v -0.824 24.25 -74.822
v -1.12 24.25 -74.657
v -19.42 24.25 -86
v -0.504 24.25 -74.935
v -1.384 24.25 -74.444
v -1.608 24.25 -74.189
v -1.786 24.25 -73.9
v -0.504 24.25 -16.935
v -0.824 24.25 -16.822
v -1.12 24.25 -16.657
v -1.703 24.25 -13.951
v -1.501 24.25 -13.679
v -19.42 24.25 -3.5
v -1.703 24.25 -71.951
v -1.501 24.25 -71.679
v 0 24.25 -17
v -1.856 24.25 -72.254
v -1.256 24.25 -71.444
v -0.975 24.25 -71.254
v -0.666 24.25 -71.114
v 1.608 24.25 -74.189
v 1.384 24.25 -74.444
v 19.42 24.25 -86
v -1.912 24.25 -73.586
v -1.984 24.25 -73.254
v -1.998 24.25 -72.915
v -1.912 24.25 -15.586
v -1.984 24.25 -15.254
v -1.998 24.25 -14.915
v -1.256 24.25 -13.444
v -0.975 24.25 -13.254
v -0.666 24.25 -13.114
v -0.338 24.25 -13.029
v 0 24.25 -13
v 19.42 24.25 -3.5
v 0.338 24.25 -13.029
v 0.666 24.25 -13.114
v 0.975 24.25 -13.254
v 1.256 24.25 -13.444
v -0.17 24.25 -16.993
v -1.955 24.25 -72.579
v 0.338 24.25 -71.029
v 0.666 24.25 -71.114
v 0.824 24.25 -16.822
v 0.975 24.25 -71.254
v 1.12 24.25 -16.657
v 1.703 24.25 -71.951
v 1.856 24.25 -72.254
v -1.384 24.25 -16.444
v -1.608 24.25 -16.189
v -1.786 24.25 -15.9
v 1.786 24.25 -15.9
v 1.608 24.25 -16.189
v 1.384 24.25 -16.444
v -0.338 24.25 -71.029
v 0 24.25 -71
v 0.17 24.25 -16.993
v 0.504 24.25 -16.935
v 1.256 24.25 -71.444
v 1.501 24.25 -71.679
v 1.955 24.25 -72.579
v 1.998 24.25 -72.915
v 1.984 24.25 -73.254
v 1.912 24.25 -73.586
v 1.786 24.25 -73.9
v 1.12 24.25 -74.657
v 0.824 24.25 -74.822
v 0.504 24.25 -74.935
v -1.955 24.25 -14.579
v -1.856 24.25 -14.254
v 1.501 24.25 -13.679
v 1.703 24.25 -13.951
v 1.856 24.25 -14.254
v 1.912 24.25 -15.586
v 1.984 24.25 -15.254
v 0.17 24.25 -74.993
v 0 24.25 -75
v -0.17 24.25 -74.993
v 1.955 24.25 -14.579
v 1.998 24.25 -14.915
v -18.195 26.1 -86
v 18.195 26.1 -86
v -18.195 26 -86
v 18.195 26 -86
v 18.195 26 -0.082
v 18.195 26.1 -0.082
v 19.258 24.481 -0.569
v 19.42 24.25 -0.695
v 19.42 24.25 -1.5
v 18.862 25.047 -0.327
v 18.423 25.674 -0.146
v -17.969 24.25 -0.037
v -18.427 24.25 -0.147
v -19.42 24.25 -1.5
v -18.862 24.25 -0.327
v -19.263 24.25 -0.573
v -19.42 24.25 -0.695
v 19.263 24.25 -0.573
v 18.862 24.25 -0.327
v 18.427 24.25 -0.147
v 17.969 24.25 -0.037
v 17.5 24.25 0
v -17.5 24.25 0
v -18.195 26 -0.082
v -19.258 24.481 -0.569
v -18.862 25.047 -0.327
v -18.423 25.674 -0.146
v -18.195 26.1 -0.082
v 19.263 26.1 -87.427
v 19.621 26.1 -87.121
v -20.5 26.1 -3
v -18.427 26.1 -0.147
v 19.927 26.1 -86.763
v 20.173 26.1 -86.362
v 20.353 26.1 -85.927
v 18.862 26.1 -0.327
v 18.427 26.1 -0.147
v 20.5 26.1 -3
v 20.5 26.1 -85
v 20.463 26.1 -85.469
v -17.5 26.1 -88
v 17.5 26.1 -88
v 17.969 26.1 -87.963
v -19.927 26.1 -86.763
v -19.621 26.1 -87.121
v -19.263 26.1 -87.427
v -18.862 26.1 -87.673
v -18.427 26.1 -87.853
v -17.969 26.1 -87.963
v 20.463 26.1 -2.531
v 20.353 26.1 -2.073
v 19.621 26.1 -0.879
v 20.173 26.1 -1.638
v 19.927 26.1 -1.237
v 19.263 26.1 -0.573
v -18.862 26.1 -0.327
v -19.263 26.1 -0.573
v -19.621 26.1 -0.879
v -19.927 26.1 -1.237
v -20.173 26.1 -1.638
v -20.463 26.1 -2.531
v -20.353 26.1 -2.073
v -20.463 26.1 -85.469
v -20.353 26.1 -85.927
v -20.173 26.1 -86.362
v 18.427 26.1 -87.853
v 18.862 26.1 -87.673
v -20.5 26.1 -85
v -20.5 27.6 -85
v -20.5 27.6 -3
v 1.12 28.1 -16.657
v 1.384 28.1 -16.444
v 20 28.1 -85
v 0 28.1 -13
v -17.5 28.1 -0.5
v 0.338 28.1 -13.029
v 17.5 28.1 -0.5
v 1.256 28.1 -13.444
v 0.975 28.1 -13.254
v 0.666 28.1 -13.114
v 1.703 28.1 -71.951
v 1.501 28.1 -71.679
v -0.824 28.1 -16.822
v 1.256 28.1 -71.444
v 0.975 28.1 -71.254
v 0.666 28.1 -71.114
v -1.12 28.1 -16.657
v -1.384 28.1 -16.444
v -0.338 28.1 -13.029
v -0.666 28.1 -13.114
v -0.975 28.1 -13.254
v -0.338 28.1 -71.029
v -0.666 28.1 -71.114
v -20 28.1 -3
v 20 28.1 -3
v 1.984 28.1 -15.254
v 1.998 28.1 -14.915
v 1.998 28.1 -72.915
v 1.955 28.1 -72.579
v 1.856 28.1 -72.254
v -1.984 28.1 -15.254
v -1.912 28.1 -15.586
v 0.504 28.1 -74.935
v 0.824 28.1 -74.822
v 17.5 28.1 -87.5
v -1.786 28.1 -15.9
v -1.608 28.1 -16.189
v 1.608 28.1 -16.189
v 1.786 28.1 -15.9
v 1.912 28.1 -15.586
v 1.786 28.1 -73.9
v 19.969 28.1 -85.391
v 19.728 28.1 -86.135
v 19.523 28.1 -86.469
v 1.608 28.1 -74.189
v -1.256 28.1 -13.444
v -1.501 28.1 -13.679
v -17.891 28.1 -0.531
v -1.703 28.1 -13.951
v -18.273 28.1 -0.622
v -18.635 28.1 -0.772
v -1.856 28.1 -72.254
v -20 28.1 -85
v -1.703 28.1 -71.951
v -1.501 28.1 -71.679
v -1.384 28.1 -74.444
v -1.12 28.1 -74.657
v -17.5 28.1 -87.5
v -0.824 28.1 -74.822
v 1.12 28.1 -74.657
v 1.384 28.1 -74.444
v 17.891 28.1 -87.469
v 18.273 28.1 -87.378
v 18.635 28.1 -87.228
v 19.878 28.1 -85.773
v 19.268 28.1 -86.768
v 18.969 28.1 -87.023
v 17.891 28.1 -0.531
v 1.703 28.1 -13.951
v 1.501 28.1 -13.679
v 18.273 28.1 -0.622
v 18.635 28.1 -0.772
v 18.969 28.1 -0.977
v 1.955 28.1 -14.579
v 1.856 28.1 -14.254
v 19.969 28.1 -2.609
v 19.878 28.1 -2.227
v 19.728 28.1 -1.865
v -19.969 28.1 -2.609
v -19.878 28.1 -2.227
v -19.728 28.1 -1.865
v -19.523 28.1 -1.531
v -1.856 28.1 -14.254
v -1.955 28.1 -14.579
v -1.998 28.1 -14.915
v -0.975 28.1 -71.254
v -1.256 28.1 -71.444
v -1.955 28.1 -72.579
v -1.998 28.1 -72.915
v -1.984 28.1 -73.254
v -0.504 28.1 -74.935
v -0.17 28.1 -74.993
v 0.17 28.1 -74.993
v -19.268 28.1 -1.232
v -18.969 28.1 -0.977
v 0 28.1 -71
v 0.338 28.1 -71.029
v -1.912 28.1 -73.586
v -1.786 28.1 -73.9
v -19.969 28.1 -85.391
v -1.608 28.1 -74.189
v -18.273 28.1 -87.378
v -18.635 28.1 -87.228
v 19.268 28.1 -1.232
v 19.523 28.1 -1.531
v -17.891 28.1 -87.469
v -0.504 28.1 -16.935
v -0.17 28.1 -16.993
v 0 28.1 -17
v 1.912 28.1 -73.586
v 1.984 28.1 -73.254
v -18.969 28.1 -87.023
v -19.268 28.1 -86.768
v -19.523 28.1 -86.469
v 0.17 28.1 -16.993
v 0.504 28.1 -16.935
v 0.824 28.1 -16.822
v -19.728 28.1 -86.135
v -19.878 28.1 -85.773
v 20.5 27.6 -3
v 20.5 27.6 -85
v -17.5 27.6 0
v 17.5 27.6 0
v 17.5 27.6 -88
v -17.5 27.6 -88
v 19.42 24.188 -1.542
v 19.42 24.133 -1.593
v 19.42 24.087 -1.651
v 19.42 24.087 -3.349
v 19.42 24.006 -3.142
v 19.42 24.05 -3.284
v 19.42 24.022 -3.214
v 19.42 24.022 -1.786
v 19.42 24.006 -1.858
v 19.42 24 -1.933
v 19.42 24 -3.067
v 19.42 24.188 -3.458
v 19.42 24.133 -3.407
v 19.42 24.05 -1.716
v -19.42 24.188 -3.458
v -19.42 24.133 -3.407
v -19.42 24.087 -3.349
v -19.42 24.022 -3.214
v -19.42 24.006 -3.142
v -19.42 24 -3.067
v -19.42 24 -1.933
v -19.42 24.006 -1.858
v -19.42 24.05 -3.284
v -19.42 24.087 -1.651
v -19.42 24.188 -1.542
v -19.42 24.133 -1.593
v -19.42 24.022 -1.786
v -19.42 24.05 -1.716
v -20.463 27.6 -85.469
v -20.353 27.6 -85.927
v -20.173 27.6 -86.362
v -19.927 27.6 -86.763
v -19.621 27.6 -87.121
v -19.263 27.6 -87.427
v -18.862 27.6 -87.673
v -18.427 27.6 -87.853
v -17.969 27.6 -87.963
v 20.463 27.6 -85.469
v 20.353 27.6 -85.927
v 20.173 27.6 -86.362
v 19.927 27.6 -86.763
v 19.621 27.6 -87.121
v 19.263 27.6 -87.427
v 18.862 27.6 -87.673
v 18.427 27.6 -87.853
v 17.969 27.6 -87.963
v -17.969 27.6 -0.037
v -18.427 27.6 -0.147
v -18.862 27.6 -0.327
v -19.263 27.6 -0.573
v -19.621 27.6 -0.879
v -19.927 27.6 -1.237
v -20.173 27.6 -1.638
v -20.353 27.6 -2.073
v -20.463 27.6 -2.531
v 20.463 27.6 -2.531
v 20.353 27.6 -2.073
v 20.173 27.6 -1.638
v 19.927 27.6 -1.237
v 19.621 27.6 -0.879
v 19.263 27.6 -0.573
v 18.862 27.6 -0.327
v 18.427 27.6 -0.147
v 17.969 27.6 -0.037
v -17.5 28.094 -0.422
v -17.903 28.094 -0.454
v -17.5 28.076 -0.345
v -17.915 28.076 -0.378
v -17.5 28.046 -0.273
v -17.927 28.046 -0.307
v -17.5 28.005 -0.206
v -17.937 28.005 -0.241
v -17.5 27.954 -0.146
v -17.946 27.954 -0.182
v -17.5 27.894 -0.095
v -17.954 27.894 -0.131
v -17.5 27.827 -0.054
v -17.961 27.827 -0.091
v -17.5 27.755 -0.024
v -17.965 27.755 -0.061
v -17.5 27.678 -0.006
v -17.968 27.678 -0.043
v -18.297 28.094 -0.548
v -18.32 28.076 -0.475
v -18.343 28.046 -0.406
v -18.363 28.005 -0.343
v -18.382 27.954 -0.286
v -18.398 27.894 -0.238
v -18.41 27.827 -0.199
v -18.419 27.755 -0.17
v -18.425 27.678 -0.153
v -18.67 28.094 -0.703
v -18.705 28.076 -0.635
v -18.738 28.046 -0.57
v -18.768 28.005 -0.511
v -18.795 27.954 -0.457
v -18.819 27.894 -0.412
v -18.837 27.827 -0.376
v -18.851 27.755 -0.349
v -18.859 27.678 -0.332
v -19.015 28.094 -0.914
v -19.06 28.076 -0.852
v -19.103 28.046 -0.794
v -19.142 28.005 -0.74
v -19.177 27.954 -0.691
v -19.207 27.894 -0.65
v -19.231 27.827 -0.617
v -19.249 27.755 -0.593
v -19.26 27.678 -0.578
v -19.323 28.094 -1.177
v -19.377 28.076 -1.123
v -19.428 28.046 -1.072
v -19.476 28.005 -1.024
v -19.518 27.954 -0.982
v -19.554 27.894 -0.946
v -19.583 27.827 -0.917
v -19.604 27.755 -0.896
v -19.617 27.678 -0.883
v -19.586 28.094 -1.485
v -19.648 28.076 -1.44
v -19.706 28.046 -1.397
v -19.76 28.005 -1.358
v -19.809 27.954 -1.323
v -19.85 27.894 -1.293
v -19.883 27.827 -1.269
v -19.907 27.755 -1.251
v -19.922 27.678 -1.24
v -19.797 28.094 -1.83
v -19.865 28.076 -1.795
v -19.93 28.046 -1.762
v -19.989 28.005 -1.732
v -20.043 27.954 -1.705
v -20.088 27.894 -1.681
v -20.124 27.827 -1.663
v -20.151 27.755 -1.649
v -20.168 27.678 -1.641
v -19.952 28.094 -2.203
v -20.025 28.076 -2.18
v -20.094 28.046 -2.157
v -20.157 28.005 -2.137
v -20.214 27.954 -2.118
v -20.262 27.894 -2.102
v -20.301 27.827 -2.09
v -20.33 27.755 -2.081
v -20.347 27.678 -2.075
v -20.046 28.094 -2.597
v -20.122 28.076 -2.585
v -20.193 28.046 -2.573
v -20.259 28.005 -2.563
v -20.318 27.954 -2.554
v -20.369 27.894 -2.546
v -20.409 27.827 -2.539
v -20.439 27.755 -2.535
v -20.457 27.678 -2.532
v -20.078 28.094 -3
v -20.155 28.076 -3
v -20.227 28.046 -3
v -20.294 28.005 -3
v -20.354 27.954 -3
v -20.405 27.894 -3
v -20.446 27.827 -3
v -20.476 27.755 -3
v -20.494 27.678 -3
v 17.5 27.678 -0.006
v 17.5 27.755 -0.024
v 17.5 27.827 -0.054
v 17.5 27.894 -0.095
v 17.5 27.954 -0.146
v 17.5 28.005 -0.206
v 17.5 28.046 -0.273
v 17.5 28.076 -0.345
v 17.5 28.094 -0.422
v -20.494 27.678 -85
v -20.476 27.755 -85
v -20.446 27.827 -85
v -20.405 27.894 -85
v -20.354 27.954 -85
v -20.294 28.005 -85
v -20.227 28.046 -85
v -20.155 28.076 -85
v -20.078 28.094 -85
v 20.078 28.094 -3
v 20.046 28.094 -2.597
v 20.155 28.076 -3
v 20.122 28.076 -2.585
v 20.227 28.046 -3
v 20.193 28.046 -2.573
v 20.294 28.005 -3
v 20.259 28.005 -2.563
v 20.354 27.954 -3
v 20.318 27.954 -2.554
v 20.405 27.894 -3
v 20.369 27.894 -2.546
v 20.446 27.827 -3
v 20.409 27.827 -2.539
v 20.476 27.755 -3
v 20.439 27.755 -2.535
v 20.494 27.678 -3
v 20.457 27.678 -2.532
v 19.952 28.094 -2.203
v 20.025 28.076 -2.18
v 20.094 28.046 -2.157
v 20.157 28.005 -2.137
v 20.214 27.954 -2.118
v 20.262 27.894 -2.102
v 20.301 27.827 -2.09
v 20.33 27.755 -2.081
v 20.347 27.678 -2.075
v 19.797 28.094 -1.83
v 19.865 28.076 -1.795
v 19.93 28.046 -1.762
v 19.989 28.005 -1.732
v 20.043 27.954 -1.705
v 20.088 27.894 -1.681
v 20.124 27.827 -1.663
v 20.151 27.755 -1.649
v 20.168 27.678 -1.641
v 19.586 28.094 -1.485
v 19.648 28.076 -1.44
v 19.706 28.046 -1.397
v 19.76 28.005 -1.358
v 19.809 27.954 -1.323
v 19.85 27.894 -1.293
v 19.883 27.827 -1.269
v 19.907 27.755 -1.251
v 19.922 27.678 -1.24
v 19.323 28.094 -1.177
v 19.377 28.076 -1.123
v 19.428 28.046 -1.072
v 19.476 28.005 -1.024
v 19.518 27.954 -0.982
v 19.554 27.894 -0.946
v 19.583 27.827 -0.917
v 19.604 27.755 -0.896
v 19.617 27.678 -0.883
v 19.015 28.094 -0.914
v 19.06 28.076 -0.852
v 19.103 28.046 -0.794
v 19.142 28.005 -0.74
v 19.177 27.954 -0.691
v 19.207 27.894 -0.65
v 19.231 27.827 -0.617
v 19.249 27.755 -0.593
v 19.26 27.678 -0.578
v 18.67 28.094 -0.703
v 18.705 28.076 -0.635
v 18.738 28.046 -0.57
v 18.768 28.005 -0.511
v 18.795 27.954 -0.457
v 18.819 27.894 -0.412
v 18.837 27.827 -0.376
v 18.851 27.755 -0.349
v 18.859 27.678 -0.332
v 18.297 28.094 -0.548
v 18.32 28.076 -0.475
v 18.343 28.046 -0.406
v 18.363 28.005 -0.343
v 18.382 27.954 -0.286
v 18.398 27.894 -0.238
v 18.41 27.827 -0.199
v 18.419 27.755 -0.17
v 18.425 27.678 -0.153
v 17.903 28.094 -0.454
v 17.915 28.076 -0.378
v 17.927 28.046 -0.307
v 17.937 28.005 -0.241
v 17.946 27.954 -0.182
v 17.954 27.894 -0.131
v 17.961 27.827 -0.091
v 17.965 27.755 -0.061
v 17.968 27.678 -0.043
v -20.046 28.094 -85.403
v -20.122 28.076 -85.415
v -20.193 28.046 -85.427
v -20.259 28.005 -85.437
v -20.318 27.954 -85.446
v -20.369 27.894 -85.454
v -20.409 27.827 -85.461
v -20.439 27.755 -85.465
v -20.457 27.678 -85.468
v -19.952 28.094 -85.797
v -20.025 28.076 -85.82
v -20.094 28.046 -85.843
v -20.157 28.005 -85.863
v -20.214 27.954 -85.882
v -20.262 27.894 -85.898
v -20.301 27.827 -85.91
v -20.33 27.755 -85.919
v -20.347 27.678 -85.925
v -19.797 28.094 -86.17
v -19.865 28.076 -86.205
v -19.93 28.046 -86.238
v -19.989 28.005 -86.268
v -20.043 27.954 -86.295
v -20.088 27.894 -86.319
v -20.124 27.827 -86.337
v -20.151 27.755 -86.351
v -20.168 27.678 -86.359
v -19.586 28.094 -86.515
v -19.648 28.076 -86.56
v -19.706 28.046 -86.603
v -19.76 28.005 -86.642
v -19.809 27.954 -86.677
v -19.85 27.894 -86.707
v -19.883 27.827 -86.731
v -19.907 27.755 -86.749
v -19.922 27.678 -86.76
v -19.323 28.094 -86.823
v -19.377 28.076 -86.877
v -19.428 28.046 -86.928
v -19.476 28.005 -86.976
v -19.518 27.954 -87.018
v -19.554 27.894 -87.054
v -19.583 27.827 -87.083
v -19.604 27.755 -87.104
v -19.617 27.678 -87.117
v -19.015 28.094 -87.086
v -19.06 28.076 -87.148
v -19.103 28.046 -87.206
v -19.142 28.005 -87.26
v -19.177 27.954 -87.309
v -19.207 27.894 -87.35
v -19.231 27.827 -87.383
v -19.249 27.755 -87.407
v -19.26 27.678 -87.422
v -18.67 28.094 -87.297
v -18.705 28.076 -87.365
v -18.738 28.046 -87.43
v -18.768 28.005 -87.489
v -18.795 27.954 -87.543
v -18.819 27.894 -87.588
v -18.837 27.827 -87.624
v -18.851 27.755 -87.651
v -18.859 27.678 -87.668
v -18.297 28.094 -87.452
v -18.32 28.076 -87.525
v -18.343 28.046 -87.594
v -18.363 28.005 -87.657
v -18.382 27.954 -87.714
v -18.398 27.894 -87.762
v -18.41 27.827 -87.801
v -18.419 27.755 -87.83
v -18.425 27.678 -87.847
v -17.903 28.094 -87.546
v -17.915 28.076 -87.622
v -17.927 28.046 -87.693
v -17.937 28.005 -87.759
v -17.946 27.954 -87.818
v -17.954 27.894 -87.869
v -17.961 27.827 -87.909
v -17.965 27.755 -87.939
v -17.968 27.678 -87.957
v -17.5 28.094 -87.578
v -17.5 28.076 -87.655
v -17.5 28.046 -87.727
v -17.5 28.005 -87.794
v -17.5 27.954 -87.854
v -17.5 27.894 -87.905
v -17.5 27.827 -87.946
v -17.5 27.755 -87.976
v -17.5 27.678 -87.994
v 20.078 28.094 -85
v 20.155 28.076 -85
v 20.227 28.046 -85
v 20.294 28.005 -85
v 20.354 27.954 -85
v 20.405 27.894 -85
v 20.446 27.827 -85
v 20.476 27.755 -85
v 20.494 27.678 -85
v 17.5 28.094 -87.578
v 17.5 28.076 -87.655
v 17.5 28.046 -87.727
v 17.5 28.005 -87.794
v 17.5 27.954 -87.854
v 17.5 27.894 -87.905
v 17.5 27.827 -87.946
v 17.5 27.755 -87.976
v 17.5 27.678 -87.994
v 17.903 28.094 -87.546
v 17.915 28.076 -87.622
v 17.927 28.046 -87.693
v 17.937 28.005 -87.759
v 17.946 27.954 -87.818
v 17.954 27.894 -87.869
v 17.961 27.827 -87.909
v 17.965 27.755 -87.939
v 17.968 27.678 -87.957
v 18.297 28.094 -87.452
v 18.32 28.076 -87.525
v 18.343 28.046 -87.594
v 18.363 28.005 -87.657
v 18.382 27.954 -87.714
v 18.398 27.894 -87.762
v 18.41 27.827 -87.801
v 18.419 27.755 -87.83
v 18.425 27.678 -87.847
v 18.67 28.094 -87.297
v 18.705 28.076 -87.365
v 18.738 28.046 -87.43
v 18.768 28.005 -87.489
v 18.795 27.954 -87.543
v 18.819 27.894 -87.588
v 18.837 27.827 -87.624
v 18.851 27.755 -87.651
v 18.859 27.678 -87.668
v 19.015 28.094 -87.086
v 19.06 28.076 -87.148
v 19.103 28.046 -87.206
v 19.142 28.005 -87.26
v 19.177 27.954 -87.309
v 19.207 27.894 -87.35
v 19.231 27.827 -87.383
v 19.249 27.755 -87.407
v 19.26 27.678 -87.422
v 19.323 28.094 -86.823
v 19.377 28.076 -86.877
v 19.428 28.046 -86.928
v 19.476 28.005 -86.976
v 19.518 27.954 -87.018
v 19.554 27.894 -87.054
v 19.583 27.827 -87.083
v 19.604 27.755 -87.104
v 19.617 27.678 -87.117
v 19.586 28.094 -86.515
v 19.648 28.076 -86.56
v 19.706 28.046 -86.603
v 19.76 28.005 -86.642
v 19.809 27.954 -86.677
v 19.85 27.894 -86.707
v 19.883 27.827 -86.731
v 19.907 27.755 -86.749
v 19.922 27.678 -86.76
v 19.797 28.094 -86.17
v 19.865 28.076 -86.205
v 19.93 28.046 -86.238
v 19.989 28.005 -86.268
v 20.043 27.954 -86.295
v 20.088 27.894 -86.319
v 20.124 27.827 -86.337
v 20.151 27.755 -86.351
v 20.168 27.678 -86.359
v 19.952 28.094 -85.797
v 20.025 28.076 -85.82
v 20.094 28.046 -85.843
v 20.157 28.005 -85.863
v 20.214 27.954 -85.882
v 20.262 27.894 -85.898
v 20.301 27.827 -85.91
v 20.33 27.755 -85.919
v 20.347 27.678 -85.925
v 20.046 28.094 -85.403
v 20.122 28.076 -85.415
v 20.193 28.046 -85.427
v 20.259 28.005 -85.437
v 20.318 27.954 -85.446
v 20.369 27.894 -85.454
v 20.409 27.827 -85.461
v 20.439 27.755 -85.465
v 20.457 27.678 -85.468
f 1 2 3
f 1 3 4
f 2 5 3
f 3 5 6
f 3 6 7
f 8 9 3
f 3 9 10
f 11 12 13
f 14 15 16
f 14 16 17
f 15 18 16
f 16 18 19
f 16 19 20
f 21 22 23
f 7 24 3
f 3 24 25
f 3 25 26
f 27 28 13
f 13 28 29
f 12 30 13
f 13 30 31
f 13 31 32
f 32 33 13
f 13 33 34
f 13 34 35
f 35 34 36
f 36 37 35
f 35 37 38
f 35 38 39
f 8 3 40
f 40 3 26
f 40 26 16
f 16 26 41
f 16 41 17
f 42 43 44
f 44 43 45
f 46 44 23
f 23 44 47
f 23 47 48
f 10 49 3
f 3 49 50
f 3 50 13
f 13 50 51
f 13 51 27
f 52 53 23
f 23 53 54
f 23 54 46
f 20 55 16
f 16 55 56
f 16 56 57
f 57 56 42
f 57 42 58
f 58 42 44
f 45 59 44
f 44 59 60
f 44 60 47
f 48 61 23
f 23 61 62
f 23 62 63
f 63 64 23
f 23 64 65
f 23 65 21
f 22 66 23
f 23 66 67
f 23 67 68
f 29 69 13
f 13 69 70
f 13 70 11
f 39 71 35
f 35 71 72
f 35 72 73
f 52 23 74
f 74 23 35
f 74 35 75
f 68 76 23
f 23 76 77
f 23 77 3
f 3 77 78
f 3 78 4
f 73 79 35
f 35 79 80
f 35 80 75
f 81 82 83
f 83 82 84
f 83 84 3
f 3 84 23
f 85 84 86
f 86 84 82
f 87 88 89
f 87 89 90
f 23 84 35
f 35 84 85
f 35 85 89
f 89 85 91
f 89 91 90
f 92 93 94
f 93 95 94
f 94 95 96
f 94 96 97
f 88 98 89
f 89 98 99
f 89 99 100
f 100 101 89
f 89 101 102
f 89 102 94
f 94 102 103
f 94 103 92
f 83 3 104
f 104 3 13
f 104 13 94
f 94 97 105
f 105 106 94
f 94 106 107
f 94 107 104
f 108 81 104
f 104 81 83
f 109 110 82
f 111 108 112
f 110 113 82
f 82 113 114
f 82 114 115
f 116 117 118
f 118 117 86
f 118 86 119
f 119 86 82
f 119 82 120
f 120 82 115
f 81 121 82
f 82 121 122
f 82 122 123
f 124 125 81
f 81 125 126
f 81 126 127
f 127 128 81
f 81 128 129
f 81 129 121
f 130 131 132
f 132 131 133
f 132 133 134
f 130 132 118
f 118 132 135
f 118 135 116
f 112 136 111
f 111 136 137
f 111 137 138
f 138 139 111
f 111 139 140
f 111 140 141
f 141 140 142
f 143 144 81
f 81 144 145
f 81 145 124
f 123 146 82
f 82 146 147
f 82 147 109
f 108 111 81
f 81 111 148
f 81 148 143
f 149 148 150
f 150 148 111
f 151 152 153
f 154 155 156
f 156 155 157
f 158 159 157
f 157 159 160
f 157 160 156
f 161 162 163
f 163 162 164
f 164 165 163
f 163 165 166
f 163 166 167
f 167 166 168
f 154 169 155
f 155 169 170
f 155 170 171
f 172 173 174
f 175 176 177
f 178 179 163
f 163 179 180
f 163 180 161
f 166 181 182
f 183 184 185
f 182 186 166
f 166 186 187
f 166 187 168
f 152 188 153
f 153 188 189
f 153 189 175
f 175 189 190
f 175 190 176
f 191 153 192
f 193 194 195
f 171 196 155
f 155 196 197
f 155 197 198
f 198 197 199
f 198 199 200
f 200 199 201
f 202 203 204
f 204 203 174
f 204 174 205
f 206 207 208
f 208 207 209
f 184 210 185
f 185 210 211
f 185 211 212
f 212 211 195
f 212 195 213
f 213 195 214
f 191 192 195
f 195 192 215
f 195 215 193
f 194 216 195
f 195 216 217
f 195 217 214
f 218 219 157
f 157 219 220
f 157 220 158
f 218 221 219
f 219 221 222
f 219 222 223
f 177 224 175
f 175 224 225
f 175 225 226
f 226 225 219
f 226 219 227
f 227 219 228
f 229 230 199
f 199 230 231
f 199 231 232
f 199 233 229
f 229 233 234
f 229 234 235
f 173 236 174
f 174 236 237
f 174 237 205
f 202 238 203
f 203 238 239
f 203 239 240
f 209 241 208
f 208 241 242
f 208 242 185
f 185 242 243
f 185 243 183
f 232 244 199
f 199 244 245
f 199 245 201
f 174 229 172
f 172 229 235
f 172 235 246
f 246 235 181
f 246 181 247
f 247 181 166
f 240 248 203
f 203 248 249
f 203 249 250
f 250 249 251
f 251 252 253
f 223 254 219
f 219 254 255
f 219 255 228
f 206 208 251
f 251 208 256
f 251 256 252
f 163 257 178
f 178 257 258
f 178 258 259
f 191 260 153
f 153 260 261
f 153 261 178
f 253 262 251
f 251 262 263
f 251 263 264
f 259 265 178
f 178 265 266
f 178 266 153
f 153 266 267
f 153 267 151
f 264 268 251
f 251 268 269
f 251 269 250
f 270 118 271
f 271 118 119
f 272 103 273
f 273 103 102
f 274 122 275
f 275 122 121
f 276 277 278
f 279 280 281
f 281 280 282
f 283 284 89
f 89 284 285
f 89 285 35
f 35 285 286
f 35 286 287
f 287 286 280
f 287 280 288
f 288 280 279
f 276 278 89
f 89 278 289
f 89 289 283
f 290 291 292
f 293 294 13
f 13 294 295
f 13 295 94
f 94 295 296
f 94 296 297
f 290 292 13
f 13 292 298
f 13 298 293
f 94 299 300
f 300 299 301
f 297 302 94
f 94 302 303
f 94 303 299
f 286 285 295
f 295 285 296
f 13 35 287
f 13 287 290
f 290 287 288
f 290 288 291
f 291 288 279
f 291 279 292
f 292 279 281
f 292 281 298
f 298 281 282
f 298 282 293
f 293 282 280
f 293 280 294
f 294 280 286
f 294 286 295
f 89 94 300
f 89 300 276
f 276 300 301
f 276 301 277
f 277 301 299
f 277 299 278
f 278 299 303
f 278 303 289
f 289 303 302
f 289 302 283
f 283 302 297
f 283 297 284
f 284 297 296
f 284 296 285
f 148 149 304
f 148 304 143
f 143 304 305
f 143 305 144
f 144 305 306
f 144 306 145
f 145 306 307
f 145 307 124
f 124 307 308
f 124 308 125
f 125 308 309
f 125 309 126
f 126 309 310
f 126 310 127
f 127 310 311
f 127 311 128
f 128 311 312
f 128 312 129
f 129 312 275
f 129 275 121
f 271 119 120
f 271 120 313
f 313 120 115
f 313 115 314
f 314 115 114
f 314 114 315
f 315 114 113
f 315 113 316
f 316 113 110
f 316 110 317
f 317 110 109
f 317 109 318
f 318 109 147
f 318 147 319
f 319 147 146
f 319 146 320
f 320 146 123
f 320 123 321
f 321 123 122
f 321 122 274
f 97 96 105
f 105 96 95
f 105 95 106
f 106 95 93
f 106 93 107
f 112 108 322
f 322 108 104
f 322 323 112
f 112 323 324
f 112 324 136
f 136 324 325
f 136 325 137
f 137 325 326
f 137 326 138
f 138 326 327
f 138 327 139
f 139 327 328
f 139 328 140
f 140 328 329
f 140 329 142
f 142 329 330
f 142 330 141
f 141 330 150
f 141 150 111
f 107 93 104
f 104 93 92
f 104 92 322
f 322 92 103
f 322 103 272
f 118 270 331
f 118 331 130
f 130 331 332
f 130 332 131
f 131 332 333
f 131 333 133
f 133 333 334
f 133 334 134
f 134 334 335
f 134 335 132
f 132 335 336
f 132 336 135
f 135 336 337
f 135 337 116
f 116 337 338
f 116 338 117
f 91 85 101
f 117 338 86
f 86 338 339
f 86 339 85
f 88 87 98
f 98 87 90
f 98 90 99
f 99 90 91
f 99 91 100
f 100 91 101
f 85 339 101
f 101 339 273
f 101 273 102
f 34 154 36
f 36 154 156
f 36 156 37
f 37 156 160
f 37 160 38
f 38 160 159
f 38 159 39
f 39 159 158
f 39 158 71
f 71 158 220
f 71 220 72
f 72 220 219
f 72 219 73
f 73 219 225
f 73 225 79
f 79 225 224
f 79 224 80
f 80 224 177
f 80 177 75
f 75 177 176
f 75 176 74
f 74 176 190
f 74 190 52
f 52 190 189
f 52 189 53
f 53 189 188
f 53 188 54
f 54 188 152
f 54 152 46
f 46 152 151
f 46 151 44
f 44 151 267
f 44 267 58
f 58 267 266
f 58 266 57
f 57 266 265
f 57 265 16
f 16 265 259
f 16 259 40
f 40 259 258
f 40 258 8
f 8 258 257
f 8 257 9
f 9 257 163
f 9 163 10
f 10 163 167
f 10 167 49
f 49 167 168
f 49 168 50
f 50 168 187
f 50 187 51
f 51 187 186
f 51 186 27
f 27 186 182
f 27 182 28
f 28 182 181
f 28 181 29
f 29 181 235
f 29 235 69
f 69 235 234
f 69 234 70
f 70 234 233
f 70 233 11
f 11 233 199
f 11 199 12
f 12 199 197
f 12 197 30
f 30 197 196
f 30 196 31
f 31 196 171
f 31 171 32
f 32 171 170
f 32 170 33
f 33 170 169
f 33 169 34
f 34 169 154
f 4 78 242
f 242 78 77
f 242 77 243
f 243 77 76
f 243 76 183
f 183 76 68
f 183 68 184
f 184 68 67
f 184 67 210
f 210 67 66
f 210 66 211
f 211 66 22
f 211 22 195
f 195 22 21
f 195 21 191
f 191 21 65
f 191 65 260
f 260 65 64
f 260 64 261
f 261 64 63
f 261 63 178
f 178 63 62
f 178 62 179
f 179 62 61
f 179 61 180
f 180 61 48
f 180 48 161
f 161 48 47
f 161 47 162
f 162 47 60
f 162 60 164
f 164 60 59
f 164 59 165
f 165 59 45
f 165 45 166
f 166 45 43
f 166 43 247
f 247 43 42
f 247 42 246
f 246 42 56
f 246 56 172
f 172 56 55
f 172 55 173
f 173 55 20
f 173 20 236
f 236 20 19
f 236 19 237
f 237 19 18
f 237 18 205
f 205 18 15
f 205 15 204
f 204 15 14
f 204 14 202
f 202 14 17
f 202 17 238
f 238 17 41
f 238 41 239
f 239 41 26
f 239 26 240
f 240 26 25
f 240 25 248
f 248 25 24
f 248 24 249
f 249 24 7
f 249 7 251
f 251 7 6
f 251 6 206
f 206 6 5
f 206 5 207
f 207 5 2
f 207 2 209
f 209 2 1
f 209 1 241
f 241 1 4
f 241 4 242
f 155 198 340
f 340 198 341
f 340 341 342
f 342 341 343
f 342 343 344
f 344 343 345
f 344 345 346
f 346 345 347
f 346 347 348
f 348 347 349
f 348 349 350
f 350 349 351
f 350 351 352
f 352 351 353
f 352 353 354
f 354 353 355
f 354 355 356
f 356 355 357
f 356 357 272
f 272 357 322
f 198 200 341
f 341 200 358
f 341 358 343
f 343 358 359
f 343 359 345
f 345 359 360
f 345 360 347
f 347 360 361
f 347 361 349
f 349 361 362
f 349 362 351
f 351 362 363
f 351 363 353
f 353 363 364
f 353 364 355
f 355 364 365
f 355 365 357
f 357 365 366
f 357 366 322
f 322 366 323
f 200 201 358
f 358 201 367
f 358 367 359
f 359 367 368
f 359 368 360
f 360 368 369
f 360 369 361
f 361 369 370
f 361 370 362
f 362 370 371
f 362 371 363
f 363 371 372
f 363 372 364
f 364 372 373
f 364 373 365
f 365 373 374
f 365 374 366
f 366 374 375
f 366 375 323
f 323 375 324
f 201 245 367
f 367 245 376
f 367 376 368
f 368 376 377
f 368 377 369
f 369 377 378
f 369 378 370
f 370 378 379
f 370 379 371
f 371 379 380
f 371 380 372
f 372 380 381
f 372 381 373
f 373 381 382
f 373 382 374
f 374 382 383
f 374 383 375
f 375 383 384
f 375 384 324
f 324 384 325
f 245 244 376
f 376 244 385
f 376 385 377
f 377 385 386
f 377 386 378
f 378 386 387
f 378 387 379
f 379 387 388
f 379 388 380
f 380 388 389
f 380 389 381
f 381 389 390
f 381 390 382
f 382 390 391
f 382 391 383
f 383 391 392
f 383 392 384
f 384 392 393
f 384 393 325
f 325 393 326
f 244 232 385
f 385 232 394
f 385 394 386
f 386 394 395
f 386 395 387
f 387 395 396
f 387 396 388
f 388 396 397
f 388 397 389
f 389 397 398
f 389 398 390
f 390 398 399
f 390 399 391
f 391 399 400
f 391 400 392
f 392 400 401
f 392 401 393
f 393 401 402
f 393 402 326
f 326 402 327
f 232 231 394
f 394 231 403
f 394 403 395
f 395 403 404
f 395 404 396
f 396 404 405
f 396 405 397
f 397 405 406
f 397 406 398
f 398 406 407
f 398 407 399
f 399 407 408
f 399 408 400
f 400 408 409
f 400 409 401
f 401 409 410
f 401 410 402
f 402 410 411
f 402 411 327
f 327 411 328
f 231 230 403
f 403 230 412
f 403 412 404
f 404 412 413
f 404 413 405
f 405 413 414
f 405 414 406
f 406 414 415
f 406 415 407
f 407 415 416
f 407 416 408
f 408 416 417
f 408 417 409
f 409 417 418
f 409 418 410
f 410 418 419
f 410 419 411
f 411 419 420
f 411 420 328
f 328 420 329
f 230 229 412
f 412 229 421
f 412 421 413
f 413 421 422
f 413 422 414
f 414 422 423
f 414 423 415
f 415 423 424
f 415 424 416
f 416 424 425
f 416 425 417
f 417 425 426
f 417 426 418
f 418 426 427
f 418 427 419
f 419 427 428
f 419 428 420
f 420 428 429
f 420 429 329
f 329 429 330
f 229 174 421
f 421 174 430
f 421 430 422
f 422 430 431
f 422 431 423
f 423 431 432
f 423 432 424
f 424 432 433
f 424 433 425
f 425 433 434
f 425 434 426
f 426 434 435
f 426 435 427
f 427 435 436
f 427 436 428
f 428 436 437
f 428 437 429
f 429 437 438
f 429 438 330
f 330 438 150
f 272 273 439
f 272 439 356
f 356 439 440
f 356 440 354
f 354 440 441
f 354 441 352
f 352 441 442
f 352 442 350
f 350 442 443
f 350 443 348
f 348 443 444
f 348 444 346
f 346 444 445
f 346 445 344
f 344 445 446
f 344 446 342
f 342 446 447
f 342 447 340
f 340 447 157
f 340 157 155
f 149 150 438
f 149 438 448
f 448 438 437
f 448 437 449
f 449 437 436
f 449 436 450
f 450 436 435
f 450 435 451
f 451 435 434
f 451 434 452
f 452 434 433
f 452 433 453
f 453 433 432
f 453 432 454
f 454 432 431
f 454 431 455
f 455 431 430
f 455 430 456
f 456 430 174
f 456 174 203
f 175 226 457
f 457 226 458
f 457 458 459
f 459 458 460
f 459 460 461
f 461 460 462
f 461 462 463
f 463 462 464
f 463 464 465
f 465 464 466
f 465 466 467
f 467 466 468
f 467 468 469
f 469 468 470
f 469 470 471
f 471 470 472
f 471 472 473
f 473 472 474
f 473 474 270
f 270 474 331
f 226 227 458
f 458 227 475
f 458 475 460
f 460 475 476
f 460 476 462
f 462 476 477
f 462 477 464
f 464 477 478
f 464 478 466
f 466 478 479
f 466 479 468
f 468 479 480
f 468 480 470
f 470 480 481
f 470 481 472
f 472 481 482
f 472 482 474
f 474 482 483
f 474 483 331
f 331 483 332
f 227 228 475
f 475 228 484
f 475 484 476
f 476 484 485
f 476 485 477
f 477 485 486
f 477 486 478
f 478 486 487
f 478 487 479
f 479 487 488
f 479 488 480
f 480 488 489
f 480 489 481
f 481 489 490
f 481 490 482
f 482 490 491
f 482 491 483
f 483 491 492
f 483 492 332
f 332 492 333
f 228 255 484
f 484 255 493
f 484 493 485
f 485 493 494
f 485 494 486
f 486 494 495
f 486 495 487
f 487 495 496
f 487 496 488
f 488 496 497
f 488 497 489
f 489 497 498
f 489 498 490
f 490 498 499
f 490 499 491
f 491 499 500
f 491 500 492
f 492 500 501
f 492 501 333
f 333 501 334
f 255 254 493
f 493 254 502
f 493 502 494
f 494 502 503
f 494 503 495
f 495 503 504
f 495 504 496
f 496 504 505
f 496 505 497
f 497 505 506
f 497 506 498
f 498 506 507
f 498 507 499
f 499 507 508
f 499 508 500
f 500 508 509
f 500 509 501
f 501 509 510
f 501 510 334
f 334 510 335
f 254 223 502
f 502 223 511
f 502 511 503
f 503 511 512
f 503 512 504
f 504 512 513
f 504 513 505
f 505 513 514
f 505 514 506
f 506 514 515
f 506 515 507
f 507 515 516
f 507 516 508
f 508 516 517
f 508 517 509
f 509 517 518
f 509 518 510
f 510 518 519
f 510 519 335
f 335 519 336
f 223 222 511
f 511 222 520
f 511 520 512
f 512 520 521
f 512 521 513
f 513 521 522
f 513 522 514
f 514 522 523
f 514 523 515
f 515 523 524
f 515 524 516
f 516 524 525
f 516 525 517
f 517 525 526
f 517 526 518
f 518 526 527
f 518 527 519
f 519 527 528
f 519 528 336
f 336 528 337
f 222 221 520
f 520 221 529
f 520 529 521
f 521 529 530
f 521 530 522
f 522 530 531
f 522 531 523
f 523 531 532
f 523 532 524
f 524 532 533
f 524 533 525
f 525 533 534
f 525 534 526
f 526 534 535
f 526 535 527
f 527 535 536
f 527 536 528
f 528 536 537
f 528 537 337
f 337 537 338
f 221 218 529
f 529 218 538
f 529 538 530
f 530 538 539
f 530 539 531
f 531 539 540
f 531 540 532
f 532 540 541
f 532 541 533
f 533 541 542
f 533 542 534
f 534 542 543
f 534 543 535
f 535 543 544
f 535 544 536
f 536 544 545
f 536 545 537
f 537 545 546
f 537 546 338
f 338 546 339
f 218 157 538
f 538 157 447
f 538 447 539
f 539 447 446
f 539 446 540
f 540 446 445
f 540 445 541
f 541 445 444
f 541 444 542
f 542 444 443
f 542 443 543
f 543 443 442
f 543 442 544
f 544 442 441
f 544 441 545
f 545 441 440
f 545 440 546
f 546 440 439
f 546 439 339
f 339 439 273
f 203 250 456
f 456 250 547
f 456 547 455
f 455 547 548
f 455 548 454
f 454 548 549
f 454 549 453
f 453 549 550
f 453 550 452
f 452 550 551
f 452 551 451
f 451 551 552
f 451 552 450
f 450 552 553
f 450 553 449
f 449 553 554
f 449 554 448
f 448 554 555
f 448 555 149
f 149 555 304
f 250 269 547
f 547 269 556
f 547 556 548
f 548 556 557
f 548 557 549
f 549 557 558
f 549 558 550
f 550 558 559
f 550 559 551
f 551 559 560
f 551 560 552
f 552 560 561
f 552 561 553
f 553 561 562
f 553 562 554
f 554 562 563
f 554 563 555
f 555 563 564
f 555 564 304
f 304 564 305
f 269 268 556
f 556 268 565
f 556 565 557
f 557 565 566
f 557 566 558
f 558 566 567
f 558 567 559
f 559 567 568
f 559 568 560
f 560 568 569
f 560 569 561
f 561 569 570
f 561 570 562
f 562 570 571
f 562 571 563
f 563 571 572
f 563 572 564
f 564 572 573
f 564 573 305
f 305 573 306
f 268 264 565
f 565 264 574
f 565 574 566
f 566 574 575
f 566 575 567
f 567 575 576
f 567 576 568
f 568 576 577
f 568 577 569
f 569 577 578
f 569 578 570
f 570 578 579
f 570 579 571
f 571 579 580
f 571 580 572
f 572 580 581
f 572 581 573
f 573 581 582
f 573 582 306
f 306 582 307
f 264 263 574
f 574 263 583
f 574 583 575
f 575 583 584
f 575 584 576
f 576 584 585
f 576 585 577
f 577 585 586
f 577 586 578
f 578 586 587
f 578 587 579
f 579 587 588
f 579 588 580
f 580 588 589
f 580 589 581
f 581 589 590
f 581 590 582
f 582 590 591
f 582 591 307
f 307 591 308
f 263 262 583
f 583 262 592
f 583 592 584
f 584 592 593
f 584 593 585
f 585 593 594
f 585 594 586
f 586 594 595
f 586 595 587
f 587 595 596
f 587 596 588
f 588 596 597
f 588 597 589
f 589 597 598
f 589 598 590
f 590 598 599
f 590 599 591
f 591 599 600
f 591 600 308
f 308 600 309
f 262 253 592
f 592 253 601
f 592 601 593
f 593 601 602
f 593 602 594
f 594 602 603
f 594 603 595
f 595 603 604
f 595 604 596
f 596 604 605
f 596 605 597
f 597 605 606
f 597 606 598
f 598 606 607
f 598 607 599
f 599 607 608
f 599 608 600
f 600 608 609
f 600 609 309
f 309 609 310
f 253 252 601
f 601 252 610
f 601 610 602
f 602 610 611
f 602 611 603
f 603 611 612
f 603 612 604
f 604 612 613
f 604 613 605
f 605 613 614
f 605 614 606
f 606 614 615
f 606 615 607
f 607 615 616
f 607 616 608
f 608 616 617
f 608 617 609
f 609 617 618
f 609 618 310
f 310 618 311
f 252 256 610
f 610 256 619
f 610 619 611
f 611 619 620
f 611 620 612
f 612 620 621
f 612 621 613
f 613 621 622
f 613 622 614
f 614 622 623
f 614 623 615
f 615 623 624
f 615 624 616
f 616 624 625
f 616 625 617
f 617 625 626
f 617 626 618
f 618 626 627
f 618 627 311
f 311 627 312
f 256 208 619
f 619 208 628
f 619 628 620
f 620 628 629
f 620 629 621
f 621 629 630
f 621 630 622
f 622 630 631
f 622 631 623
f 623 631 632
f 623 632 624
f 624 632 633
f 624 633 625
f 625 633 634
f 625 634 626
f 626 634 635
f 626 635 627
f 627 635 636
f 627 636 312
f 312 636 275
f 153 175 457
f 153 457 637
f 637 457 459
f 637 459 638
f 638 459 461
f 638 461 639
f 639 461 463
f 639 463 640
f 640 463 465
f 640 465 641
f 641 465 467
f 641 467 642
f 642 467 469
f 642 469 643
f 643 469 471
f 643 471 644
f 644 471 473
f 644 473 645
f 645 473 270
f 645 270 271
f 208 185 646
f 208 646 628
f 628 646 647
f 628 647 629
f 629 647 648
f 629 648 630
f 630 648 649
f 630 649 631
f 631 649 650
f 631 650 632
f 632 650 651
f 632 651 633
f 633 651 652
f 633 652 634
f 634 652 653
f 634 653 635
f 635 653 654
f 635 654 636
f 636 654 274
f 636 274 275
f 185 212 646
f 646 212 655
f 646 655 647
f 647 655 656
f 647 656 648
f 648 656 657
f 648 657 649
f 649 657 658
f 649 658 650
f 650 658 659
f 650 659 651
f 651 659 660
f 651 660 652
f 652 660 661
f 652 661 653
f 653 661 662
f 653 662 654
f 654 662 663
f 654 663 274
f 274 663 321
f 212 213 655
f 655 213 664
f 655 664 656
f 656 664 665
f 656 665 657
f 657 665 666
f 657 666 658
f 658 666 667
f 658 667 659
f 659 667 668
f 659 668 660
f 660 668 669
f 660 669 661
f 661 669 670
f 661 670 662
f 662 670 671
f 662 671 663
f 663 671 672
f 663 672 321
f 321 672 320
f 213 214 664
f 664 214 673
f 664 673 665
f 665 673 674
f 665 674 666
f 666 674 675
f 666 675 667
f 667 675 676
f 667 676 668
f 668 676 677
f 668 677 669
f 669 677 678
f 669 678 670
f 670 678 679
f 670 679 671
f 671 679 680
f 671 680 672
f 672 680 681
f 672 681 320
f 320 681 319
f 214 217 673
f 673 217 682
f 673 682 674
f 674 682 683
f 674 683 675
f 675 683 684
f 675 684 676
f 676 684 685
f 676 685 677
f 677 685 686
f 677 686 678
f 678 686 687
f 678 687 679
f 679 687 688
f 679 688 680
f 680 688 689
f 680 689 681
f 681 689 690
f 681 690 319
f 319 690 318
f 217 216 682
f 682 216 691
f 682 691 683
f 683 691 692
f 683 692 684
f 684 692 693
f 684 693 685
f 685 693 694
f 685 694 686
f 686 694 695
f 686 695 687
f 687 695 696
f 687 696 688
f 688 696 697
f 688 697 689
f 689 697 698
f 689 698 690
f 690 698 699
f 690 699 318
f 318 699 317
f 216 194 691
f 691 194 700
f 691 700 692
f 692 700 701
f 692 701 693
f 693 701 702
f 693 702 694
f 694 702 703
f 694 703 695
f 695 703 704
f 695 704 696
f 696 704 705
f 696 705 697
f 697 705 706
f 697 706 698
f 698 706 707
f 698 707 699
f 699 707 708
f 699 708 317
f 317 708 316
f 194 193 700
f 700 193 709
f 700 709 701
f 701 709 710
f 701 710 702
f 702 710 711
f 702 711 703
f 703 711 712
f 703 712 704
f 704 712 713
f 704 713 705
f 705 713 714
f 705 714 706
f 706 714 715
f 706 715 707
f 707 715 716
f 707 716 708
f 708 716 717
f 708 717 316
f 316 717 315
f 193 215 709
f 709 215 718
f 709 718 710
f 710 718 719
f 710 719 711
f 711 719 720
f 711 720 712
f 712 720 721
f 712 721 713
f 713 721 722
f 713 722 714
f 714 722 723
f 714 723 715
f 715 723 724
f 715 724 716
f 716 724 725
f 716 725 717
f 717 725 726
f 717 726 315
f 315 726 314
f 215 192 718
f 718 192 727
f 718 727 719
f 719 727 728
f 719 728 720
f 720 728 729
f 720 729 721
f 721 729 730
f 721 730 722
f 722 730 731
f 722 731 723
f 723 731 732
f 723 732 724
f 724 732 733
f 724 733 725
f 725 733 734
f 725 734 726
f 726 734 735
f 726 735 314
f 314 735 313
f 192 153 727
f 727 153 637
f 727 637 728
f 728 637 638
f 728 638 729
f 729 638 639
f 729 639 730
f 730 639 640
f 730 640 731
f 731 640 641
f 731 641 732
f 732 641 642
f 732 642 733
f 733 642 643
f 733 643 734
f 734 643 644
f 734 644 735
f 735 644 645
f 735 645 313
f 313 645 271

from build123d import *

# Parameters (mm, degrees)
BOSS_EXTRUDE1_DEPTH = 86
SKETCH2_W           = 41
SKETCH2_H           = 2
BOSS_EXTRUDE2_DEPTH = 2
SKETCH3_W           = 38.84033909
SKETCH3_H           = 2
BOSS_EXTRUDE3_DEPTH = 0.25
FILLET2_R           = 0.5
FILLET1_R           = 3
CUT_EXTRUDE1_REACH  = 92.449
SKETCH4_R           = 2
FILLET3_R           = 0.5


with BuildPart() as part:
    # Sketch1 → Boss-Extrude1 (new body)
    with BuildSketch(Plane.XY):
        Polygon((18.194806353, 26), (19.420169545, 24.25), (-19.420169545, 24.25), (-18.194806353, 26), (-18.194806353, 26.1), (-20.5, 26.1), (-20.5, 28.1), (20.5, 28.1), (20.5, 26.1), (18.194806353, 26.1), align=None)
    extrude(amount=-BOSS_EXTRUDE1_DEPTH)

    # Sketch2 → Boss-Extrude2 (add)
    with BuildSketch(Plane(origin=(0, 0, -86), x_dir=(-1, 0, 0), z_dir=(0, 0, -1))):
        with Locations((0, 27.1)):
            Rectangle(SKETCH2_W, SKETCH2_H)
    extrude(amount=BOSS_EXTRUDE2_DEPTH)

    # Sketch3 → Boss-Extrude3 (add)
    with BuildSketch(Plane.XZ.offset(-24.25)):
        with Locations((0, -2.5)):
            Rectangle(SKETCH3_W, SKETCH3_H)
    extrude(amount=BOSS_EXTRUDE3_DEPTH)

    # Fillet2
    # the kernel refuses this fillet: 0.5 mm, written as the material it takes off along each edge
    with BuildSketch(Plane(origin=(-20.502701299, 24, -3.5), x_dir=(0, 1, 0), z_dir=(1, 0, 0)), Plane(origin=(20.502701299, 24, -1.5), x_dir=(0, 1, 0), z_dir=(-1, 0, 0))) as fillet2_piece_1:
        with BuildLine():
            CenterArc((0.5, 0.433012702), FILLET2_R, 180, 60)
            Line((0, 0.433012702), (-0.01, 0.433012702))
            Line((-0.01, 0.433012702), (-0.01, 0))
            Line((-0.01, 0), (0, -0.01))
            ThreePointArc((0, -0.01), (0.125, -0.01), (0.245, -0.008660254))
            Line((0.245, -0.008660254), (0.25, 0))
        make_face()
    extrude(amount=41.005402599, mode=Mode.SUBTRACT)

    # Fillet1
    fillet1_edges = [part.edges().sort_by_distance(p)[0] for p in [
        (-20.5, 27.1, 0),
        (20.5, 27.1, 0),
        (-20.5, 27.1, -88),
        (20.5, 27.1, -88),
    ]]
    fillet(fillet1_edges, radius=FILLET1_R)

    # Sketch4 → Cut-Extrude1 (cut, up to next)
    with BuildSketch(Plane(origin=(0, 28.1, 0), x_dir=(1, 0, 0), z_dir=(0, 1, 0)), mode=Mode.PRIVATE) as cut_extrude1_sk1:
        with Locations(Location((0, 73, 0), (0, 0, 270))):
            Circle(SKETCH4_R)
    cut_extrude1_tool1 = extrude(cut_extrude1_sk1.sketch, amount=-CUT_EXTRUDE1_REACH, mode=Mode.PRIVATE) & part.part
    # Sketch4 → Cut-Extrude1 (cut, up to next)
    with BuildSketch(Plane(origin=(0, 28.1, 0), x_dir=(1, 0, 0), z_dir=(0, 1, 0)), mode=Mode.PRIVATE) as cut_extrude1_sk2:
        with Locations((0, 15)):
            Circle(SKETCH4_R)
    cut_extrude1_tool2 = extrude(cut_extrude1_sk2.sketch, amount=-CUT_EXTRUDE1_REACH, mode=Mode.PRIVATE) & part.part
    add(cut_extrude1_tool1.solids().sort_by_distance((0, 28.1, -73))[0], mode=Mode.SUBTRACT)
    add(cut_extrude1_tool2.solids().sort_by_distance((0, 28.1, -15))[0], mode=Mode.SUBTRACT)

    # Fillet3
    fillet3_edges = [part.edges().sort_by_distance(p)[0] for p in [
        (20.5, 28.1, -44),
        (0, 28.1, 0),
        (19.621320344, 28.1, -0.878679656),
        (-19.621320344, 28.1, -0.878679656),
        (19.621320344, 28.1, -87.121320344),
        (-19.621320344, 28.1, -87.121320344),
        (-20.5, 28.1, -44),
        (0, 28.1, -88),
    ]]
    fillet(fillet3_edges, radius=FILLET3_R)


solid = part.part
